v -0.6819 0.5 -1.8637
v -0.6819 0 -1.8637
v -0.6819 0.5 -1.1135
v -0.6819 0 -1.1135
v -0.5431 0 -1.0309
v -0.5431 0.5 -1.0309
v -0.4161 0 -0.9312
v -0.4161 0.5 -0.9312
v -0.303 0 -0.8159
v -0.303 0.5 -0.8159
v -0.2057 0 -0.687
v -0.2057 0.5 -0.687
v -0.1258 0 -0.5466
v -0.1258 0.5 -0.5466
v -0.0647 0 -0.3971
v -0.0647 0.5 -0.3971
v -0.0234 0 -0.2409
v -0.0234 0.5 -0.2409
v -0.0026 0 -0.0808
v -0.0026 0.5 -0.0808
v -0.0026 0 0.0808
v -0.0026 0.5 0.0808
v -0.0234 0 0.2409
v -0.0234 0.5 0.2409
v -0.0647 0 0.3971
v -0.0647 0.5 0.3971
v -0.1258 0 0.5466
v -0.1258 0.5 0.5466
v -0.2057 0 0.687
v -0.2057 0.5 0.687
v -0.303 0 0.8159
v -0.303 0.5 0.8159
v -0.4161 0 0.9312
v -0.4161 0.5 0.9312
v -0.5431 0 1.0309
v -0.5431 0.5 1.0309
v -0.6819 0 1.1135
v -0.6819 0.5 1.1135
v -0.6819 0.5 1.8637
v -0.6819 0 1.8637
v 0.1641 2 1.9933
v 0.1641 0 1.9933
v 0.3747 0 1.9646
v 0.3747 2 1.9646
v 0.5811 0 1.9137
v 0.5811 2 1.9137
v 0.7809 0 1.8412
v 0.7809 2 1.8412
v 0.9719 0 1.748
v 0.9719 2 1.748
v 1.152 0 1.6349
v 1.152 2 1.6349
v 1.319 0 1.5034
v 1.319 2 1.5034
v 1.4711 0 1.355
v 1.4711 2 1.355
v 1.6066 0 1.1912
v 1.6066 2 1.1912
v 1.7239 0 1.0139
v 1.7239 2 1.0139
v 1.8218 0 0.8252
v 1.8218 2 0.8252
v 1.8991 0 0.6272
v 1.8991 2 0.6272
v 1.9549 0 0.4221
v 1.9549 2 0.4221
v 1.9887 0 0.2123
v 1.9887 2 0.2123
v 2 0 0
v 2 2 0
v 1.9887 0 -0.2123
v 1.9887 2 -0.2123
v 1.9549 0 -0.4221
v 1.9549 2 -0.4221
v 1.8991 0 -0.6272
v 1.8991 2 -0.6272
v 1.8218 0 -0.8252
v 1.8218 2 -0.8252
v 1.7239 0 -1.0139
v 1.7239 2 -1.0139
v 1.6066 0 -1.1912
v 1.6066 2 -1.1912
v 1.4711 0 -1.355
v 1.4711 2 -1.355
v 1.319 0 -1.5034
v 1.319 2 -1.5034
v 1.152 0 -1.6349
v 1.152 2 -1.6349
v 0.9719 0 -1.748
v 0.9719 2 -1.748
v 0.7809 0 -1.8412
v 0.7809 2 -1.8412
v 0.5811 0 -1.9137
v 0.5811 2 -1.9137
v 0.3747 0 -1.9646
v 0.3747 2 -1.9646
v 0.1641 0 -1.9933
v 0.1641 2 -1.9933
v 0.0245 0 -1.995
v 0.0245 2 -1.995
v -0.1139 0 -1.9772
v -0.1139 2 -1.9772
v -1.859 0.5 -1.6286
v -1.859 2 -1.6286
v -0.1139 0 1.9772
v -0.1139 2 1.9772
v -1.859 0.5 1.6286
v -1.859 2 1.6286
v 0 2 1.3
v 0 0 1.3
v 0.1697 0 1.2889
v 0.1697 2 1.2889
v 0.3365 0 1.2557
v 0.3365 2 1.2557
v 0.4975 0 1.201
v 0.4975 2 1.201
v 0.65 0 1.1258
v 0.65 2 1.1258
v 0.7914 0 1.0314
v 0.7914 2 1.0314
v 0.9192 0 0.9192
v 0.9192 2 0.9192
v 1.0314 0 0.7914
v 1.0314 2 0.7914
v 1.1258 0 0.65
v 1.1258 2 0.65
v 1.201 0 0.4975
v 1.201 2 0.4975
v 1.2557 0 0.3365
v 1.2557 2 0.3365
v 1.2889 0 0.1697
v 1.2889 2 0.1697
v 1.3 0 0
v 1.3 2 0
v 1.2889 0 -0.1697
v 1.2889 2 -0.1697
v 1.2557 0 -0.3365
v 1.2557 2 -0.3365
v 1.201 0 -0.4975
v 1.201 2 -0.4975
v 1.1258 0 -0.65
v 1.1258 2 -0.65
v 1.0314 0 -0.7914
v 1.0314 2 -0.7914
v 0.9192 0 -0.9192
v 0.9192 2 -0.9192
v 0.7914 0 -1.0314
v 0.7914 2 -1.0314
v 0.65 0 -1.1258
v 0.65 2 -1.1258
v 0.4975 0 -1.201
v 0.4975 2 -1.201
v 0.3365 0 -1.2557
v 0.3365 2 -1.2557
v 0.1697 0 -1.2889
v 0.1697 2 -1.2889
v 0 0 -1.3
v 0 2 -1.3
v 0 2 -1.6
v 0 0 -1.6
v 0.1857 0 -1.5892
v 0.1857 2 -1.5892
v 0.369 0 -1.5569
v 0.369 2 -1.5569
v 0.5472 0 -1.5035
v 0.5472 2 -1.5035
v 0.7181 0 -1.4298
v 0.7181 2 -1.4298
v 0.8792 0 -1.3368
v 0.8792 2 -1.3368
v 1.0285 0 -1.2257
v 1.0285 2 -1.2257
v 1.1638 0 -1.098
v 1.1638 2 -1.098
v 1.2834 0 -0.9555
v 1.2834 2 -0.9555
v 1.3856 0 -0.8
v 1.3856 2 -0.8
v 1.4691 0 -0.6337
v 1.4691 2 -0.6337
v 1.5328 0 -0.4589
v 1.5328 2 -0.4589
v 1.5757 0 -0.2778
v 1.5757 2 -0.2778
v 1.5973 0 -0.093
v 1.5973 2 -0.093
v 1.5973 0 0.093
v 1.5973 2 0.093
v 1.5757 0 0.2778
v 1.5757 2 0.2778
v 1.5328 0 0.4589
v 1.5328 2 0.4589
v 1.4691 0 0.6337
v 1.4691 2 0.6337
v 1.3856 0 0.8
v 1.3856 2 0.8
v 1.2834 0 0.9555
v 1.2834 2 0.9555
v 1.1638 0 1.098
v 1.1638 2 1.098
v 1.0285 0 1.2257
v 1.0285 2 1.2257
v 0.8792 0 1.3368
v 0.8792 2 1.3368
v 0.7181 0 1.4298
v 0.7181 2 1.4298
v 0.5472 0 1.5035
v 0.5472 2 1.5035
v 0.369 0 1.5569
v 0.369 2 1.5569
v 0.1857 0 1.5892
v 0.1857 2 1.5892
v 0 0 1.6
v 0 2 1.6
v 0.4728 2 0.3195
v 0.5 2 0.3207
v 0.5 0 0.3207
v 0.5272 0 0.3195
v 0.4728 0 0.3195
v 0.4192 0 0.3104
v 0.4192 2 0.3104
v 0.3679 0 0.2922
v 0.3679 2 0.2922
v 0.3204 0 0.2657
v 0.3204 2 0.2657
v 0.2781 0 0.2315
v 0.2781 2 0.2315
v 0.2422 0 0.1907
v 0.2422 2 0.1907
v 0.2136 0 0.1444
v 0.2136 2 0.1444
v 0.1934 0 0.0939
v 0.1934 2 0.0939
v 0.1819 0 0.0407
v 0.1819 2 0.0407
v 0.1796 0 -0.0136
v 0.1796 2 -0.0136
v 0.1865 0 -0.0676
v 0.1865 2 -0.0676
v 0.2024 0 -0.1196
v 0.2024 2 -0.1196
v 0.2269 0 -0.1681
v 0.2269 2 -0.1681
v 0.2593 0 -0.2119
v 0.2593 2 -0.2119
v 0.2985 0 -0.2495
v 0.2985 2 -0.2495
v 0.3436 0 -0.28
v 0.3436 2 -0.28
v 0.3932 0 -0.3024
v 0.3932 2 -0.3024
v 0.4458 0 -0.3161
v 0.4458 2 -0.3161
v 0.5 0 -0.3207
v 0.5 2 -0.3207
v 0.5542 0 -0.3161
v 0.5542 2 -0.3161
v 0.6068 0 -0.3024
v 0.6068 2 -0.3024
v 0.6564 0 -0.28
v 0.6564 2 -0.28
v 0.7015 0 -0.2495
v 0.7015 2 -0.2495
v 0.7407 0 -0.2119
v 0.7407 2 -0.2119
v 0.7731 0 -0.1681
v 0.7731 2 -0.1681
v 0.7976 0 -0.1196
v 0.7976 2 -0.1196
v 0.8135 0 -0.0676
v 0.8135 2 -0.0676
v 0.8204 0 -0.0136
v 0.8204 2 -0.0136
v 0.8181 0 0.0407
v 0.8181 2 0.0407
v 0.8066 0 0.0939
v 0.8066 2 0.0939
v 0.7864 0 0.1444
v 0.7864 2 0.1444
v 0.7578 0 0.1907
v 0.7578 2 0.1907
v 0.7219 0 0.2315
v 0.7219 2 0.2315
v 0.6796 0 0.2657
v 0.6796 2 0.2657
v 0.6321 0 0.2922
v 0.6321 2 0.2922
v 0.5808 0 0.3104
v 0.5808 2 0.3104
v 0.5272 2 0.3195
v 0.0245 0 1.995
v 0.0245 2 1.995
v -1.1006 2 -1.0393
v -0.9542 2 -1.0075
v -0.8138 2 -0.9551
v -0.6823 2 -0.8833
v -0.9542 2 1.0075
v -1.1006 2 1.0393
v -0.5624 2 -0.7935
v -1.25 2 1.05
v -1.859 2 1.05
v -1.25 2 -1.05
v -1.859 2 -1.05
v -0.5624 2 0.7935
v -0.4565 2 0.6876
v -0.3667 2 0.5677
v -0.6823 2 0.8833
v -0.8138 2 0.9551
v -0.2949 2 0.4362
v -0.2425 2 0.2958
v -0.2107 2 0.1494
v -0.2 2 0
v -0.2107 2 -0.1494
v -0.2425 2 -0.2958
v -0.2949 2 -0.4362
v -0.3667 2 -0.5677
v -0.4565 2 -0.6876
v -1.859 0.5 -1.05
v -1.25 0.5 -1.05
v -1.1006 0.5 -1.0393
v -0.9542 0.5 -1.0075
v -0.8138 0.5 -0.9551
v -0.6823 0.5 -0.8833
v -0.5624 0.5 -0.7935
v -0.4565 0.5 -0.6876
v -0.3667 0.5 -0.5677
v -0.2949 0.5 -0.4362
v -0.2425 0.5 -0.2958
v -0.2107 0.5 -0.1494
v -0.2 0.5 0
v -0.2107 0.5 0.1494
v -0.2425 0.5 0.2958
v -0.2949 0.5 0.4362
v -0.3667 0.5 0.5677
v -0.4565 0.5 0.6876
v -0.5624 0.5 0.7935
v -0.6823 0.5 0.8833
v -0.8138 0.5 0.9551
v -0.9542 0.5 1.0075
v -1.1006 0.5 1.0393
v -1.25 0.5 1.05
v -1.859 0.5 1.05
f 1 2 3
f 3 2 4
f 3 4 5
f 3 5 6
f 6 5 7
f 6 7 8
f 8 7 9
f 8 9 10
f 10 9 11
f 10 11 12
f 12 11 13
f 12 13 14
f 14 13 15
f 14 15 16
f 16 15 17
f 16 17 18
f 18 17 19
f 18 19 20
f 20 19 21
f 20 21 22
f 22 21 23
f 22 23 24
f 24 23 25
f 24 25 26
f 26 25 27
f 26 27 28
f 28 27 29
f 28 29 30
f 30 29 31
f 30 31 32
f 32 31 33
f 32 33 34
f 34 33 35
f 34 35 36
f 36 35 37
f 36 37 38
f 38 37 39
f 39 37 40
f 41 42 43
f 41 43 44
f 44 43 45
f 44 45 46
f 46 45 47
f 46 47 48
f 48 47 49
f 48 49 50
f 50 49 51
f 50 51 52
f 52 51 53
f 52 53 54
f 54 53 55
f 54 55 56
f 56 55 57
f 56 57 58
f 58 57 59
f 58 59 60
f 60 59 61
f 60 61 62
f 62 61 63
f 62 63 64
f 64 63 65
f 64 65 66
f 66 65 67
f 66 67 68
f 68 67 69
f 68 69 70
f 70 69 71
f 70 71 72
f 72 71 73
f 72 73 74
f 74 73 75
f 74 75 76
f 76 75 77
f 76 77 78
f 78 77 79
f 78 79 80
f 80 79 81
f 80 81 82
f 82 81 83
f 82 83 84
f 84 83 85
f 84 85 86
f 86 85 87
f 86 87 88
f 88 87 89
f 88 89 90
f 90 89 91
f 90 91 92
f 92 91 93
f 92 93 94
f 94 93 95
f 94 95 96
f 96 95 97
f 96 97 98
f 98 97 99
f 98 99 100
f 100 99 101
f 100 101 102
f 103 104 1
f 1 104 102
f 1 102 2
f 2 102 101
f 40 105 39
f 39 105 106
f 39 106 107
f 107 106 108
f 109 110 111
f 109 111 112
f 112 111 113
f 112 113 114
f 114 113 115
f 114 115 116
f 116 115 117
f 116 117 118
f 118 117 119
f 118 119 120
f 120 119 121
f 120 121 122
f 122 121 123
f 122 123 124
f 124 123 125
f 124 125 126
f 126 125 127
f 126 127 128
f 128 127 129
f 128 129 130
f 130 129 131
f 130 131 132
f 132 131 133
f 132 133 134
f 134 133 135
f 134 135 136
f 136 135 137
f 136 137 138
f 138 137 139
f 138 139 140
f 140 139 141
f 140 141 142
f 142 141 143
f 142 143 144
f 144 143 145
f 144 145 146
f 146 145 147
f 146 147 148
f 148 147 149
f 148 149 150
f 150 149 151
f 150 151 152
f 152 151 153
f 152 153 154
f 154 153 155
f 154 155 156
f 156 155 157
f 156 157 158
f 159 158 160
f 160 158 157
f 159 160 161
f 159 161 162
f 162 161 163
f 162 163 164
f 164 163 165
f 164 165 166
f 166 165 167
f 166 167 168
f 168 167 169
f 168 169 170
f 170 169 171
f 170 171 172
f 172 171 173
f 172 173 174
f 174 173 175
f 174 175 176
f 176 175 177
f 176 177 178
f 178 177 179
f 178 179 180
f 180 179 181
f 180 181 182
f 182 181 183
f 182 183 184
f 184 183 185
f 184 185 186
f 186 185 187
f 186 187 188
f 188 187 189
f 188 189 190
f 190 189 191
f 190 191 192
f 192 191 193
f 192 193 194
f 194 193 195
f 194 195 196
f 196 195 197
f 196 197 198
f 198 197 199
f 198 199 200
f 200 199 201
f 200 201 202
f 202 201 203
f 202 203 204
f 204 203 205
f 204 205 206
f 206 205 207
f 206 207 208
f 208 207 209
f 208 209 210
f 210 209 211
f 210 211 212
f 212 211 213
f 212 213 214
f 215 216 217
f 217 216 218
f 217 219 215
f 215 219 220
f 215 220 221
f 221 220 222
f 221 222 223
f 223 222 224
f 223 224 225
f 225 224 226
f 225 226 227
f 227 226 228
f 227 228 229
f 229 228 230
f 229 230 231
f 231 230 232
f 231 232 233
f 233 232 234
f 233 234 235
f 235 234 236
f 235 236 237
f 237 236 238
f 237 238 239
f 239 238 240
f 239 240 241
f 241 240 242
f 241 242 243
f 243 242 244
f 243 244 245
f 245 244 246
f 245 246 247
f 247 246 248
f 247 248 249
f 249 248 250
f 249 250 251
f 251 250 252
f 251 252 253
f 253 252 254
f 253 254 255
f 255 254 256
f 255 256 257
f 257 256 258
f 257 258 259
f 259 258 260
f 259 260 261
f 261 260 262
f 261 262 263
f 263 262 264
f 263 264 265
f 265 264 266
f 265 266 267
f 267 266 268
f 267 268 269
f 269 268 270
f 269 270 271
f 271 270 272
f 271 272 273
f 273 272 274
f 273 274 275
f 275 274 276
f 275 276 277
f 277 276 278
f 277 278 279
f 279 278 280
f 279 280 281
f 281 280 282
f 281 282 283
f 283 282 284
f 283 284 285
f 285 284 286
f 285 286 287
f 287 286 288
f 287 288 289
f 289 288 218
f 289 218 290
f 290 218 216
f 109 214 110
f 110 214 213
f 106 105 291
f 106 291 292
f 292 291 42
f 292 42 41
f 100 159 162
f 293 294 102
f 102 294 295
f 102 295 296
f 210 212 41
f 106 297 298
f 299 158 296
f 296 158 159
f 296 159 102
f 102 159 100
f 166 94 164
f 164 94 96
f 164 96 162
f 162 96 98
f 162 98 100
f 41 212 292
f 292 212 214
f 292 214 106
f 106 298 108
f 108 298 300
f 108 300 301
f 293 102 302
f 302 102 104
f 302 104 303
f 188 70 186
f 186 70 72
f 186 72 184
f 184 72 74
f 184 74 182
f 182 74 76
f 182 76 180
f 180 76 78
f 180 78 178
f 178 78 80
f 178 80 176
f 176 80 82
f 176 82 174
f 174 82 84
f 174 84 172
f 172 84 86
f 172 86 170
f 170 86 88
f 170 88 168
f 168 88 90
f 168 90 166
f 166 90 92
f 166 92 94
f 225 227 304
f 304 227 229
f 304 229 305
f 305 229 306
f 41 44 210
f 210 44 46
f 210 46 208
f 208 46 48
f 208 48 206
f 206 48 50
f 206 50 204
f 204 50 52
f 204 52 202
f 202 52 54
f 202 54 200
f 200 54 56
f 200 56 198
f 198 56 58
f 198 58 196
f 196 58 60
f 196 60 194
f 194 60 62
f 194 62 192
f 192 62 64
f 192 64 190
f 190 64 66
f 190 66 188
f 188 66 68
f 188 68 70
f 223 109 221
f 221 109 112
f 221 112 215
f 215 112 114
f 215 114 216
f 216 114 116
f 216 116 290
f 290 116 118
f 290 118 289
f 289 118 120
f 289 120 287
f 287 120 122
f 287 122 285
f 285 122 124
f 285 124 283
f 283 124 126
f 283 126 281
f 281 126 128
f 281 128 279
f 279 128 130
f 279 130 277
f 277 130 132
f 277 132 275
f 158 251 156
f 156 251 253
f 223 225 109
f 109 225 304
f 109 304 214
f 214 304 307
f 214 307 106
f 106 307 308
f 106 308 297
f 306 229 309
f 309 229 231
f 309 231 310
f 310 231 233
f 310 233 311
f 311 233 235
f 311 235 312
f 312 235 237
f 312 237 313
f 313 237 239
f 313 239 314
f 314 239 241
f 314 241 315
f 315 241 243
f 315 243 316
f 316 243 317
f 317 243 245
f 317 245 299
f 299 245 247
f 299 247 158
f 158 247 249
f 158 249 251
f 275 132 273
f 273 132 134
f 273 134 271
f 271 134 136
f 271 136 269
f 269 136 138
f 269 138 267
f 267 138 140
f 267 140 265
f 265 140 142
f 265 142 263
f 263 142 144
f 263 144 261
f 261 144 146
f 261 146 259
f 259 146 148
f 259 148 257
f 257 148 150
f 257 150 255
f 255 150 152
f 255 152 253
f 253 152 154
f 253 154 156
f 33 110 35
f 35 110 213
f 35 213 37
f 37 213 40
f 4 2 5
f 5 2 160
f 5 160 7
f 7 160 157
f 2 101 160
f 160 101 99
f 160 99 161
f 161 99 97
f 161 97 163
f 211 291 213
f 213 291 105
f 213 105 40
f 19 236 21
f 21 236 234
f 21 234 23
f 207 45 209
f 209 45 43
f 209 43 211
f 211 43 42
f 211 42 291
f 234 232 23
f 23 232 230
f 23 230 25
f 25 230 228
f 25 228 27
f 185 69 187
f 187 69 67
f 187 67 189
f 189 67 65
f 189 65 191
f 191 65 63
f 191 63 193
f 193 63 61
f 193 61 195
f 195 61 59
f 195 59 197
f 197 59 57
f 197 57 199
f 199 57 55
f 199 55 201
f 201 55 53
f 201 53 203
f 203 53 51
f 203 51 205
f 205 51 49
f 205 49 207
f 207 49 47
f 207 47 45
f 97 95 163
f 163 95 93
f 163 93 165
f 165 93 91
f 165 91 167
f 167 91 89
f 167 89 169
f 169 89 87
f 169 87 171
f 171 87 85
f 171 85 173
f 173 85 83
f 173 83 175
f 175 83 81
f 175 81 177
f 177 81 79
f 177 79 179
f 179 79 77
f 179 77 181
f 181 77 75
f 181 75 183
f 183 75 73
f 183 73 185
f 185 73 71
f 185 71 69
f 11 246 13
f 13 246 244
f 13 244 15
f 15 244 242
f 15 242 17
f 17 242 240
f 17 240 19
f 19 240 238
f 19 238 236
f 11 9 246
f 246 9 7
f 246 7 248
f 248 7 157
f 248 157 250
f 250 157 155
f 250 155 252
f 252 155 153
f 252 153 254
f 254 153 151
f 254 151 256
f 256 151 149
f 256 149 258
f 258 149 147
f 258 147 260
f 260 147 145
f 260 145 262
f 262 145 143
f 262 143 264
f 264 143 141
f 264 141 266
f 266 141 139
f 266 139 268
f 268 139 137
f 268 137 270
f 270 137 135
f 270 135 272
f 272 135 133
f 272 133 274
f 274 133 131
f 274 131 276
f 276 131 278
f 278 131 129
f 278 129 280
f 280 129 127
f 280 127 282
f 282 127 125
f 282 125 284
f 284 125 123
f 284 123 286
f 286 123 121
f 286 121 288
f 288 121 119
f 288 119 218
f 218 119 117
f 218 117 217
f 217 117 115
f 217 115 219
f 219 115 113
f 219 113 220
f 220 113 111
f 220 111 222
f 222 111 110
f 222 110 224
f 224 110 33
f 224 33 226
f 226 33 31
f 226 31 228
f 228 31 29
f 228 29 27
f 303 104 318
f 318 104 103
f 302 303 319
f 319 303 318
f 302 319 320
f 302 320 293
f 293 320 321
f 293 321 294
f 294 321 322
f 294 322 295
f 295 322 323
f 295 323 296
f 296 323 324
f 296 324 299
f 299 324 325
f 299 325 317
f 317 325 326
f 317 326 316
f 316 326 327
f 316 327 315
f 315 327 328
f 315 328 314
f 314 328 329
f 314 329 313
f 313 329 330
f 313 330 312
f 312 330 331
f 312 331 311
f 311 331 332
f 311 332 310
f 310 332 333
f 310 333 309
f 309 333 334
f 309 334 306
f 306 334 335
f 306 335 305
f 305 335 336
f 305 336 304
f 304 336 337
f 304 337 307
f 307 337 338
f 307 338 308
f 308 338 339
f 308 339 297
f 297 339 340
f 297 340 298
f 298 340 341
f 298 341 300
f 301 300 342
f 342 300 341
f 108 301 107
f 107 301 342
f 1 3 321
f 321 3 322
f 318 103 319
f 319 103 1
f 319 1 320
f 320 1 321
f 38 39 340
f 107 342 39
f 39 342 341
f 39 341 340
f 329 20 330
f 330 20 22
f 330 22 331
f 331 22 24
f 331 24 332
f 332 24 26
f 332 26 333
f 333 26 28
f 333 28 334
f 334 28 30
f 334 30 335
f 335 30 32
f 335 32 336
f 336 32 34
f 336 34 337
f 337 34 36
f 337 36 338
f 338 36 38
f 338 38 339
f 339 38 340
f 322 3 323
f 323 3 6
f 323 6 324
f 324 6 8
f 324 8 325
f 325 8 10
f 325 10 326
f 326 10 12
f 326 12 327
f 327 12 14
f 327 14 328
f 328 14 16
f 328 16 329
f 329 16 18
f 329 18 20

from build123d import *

# Parameters (mm, degrees)
SKETCH1_R           = 0.3207
BOSS_EXTRUDE4_DEPTH = 2
BOSS_EXTRUDE5_START = 0.5
BOSS_EXTRUDE5_DEPTH = 1.5


with BuildPart() as part:
    # Sketch1 → Boss-Extrude4 (new body)
    with BuildSketch(Plane(origin=(0, 0, 0), x_dir=(1, 0, 0), z_dir=(0, 1, 0))):
        with BuildLine():
            ThreePointArc((0.164100899, 1.993256355), (0.024548564, 1.994973575), (-0.11388376, 1.977245221))
            Line((-0.11388376, 1.977245221), (-0.68194188, 1.863743198))
            Line((-0.68194188, 1.863743198), (-0.68194188, 1.25))
            Line((-0.68194188, 1.25), (-0.68194188, 1.113467544))
            ThreePointArc((-0.68194188, 1.113467544), (-0.184032681, 0.652850423), (0, 0))
            ThreePointArc((0, 0), (-0.184032681, -0.652850423), (-0.68194188, -1.113467544))
            Line((-0.68194188, -1.113467544), (-0.68194188, -1.25))
            Line((-0.68194188, -1.25), (-0.68194188, -1.863743197))
            Line((-0.68194188, -1.863743197), (-0.11388376, -1.977245221))
            ThreePointArc((-0.11388376, -1.977245221), (0.024548564, -1.994973575), (0.164100898, -1.993256355))
            ThreePointArc((0.164100898, -1.993256355), (2, 0), (0.164100899, 1.993256355))
        make_face()
        with Locations((0.5, 0)):
            Circle(SKETCH1_R, mode=Mode.SUBTRACT)
        with BuildLine():
            Line((0, 1.3), (0, 1.6))
            ThreePointArc((0, 1.6), (1.6, 0), (0, -1.6))
            Line((0, -1.6), (0, -1.3))
            ThreePointArc((0, -1.3), (1.3, 0), (0, 1.3))
        make_face(mode=Mode.SUBTRACT)
    extrude(amount=BOSS_EXTRUDE4_DEPTH)

    # Sketch1<30> → Boss-Extrude5 (add)
    with BuildSketch(Plane(origin=(0, 0, 0), x_dir=(1, 0, 0), z_dir=(0, 1, 0)).offset(BOSS_EXTRUDE5_START)):
        with BuildLine():
            Line((-0.68194188, 1.863743198), (-1.85903885, 1.628550912))
            Line((-1.85903885, 1.628550912), (-1.85903885, 1.05))
            Line((-1.85903885, 1.05), (-1.25, 1.05))
            ThreePointArc((-1.25, 1.05), (-0.2, 0), (-1.25, -1.05))
            Line((-1.25, -1.05), (-1.85903885, -1.05))
            Line((-1.85903885, -1.05), (-1.85903885, -1.628550912))
            Line((-1.85903885, -1.628550912), (-0.68194188, -1.863743197))
            Line((-0.68194188, -1.863743197), (-0.68194188, -1.113467544))
            ThreePointArc((-0.68194188, -1.113467544), (0, 0), (-0.68194188, 1.113467544))
            Line((-0.68194188, 1.113467544), (-0.68194188, 1.863743198))
        make_face()
    extrude(amount=BOSS_EXTRUDE5_DEPTH)


solid = part.part
